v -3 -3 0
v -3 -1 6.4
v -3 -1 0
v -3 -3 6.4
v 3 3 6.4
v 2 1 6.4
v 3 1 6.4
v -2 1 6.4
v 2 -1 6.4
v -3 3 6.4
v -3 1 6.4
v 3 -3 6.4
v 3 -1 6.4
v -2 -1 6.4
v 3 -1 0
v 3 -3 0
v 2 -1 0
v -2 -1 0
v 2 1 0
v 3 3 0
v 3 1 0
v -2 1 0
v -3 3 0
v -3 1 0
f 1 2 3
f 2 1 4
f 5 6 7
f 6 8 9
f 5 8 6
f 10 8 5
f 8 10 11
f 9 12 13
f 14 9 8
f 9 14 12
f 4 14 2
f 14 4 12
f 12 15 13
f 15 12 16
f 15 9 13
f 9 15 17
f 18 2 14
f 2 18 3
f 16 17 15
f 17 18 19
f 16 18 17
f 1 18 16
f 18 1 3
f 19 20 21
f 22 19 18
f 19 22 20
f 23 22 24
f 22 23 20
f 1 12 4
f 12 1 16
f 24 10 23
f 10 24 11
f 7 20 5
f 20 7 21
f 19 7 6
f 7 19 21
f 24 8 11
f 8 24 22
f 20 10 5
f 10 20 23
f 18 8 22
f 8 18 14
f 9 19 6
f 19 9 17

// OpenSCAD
// Atari XEGS Buttor replacement stand
// RealGusi (C) 2020
// https://maniana.net
// Creative Commons - Attribution - Non-Commercial - Share Alike license.

// Modify those 2 variables to adjust a proper size
$stand_width = 6;
$stand_height = 6.4;
$spacer_thickness = 4.0;

translate( [ - ( $stand_width) / 2, - ( $stand_width) / 2, , 0])
cube( [ $stand_width , 2, $stand_height]);

translate( [ - ( $stand_width) / 2, + ( $stand_width) / 2 - 2, , 0])
cube( [ $stand_width , 2, $stand_height]);

translate( [ - $spacer_thickness / 2, - ( $stand_width) / 2, 0])
cube( [ $spacer_thickness , $stand_width, $stand_height]);
